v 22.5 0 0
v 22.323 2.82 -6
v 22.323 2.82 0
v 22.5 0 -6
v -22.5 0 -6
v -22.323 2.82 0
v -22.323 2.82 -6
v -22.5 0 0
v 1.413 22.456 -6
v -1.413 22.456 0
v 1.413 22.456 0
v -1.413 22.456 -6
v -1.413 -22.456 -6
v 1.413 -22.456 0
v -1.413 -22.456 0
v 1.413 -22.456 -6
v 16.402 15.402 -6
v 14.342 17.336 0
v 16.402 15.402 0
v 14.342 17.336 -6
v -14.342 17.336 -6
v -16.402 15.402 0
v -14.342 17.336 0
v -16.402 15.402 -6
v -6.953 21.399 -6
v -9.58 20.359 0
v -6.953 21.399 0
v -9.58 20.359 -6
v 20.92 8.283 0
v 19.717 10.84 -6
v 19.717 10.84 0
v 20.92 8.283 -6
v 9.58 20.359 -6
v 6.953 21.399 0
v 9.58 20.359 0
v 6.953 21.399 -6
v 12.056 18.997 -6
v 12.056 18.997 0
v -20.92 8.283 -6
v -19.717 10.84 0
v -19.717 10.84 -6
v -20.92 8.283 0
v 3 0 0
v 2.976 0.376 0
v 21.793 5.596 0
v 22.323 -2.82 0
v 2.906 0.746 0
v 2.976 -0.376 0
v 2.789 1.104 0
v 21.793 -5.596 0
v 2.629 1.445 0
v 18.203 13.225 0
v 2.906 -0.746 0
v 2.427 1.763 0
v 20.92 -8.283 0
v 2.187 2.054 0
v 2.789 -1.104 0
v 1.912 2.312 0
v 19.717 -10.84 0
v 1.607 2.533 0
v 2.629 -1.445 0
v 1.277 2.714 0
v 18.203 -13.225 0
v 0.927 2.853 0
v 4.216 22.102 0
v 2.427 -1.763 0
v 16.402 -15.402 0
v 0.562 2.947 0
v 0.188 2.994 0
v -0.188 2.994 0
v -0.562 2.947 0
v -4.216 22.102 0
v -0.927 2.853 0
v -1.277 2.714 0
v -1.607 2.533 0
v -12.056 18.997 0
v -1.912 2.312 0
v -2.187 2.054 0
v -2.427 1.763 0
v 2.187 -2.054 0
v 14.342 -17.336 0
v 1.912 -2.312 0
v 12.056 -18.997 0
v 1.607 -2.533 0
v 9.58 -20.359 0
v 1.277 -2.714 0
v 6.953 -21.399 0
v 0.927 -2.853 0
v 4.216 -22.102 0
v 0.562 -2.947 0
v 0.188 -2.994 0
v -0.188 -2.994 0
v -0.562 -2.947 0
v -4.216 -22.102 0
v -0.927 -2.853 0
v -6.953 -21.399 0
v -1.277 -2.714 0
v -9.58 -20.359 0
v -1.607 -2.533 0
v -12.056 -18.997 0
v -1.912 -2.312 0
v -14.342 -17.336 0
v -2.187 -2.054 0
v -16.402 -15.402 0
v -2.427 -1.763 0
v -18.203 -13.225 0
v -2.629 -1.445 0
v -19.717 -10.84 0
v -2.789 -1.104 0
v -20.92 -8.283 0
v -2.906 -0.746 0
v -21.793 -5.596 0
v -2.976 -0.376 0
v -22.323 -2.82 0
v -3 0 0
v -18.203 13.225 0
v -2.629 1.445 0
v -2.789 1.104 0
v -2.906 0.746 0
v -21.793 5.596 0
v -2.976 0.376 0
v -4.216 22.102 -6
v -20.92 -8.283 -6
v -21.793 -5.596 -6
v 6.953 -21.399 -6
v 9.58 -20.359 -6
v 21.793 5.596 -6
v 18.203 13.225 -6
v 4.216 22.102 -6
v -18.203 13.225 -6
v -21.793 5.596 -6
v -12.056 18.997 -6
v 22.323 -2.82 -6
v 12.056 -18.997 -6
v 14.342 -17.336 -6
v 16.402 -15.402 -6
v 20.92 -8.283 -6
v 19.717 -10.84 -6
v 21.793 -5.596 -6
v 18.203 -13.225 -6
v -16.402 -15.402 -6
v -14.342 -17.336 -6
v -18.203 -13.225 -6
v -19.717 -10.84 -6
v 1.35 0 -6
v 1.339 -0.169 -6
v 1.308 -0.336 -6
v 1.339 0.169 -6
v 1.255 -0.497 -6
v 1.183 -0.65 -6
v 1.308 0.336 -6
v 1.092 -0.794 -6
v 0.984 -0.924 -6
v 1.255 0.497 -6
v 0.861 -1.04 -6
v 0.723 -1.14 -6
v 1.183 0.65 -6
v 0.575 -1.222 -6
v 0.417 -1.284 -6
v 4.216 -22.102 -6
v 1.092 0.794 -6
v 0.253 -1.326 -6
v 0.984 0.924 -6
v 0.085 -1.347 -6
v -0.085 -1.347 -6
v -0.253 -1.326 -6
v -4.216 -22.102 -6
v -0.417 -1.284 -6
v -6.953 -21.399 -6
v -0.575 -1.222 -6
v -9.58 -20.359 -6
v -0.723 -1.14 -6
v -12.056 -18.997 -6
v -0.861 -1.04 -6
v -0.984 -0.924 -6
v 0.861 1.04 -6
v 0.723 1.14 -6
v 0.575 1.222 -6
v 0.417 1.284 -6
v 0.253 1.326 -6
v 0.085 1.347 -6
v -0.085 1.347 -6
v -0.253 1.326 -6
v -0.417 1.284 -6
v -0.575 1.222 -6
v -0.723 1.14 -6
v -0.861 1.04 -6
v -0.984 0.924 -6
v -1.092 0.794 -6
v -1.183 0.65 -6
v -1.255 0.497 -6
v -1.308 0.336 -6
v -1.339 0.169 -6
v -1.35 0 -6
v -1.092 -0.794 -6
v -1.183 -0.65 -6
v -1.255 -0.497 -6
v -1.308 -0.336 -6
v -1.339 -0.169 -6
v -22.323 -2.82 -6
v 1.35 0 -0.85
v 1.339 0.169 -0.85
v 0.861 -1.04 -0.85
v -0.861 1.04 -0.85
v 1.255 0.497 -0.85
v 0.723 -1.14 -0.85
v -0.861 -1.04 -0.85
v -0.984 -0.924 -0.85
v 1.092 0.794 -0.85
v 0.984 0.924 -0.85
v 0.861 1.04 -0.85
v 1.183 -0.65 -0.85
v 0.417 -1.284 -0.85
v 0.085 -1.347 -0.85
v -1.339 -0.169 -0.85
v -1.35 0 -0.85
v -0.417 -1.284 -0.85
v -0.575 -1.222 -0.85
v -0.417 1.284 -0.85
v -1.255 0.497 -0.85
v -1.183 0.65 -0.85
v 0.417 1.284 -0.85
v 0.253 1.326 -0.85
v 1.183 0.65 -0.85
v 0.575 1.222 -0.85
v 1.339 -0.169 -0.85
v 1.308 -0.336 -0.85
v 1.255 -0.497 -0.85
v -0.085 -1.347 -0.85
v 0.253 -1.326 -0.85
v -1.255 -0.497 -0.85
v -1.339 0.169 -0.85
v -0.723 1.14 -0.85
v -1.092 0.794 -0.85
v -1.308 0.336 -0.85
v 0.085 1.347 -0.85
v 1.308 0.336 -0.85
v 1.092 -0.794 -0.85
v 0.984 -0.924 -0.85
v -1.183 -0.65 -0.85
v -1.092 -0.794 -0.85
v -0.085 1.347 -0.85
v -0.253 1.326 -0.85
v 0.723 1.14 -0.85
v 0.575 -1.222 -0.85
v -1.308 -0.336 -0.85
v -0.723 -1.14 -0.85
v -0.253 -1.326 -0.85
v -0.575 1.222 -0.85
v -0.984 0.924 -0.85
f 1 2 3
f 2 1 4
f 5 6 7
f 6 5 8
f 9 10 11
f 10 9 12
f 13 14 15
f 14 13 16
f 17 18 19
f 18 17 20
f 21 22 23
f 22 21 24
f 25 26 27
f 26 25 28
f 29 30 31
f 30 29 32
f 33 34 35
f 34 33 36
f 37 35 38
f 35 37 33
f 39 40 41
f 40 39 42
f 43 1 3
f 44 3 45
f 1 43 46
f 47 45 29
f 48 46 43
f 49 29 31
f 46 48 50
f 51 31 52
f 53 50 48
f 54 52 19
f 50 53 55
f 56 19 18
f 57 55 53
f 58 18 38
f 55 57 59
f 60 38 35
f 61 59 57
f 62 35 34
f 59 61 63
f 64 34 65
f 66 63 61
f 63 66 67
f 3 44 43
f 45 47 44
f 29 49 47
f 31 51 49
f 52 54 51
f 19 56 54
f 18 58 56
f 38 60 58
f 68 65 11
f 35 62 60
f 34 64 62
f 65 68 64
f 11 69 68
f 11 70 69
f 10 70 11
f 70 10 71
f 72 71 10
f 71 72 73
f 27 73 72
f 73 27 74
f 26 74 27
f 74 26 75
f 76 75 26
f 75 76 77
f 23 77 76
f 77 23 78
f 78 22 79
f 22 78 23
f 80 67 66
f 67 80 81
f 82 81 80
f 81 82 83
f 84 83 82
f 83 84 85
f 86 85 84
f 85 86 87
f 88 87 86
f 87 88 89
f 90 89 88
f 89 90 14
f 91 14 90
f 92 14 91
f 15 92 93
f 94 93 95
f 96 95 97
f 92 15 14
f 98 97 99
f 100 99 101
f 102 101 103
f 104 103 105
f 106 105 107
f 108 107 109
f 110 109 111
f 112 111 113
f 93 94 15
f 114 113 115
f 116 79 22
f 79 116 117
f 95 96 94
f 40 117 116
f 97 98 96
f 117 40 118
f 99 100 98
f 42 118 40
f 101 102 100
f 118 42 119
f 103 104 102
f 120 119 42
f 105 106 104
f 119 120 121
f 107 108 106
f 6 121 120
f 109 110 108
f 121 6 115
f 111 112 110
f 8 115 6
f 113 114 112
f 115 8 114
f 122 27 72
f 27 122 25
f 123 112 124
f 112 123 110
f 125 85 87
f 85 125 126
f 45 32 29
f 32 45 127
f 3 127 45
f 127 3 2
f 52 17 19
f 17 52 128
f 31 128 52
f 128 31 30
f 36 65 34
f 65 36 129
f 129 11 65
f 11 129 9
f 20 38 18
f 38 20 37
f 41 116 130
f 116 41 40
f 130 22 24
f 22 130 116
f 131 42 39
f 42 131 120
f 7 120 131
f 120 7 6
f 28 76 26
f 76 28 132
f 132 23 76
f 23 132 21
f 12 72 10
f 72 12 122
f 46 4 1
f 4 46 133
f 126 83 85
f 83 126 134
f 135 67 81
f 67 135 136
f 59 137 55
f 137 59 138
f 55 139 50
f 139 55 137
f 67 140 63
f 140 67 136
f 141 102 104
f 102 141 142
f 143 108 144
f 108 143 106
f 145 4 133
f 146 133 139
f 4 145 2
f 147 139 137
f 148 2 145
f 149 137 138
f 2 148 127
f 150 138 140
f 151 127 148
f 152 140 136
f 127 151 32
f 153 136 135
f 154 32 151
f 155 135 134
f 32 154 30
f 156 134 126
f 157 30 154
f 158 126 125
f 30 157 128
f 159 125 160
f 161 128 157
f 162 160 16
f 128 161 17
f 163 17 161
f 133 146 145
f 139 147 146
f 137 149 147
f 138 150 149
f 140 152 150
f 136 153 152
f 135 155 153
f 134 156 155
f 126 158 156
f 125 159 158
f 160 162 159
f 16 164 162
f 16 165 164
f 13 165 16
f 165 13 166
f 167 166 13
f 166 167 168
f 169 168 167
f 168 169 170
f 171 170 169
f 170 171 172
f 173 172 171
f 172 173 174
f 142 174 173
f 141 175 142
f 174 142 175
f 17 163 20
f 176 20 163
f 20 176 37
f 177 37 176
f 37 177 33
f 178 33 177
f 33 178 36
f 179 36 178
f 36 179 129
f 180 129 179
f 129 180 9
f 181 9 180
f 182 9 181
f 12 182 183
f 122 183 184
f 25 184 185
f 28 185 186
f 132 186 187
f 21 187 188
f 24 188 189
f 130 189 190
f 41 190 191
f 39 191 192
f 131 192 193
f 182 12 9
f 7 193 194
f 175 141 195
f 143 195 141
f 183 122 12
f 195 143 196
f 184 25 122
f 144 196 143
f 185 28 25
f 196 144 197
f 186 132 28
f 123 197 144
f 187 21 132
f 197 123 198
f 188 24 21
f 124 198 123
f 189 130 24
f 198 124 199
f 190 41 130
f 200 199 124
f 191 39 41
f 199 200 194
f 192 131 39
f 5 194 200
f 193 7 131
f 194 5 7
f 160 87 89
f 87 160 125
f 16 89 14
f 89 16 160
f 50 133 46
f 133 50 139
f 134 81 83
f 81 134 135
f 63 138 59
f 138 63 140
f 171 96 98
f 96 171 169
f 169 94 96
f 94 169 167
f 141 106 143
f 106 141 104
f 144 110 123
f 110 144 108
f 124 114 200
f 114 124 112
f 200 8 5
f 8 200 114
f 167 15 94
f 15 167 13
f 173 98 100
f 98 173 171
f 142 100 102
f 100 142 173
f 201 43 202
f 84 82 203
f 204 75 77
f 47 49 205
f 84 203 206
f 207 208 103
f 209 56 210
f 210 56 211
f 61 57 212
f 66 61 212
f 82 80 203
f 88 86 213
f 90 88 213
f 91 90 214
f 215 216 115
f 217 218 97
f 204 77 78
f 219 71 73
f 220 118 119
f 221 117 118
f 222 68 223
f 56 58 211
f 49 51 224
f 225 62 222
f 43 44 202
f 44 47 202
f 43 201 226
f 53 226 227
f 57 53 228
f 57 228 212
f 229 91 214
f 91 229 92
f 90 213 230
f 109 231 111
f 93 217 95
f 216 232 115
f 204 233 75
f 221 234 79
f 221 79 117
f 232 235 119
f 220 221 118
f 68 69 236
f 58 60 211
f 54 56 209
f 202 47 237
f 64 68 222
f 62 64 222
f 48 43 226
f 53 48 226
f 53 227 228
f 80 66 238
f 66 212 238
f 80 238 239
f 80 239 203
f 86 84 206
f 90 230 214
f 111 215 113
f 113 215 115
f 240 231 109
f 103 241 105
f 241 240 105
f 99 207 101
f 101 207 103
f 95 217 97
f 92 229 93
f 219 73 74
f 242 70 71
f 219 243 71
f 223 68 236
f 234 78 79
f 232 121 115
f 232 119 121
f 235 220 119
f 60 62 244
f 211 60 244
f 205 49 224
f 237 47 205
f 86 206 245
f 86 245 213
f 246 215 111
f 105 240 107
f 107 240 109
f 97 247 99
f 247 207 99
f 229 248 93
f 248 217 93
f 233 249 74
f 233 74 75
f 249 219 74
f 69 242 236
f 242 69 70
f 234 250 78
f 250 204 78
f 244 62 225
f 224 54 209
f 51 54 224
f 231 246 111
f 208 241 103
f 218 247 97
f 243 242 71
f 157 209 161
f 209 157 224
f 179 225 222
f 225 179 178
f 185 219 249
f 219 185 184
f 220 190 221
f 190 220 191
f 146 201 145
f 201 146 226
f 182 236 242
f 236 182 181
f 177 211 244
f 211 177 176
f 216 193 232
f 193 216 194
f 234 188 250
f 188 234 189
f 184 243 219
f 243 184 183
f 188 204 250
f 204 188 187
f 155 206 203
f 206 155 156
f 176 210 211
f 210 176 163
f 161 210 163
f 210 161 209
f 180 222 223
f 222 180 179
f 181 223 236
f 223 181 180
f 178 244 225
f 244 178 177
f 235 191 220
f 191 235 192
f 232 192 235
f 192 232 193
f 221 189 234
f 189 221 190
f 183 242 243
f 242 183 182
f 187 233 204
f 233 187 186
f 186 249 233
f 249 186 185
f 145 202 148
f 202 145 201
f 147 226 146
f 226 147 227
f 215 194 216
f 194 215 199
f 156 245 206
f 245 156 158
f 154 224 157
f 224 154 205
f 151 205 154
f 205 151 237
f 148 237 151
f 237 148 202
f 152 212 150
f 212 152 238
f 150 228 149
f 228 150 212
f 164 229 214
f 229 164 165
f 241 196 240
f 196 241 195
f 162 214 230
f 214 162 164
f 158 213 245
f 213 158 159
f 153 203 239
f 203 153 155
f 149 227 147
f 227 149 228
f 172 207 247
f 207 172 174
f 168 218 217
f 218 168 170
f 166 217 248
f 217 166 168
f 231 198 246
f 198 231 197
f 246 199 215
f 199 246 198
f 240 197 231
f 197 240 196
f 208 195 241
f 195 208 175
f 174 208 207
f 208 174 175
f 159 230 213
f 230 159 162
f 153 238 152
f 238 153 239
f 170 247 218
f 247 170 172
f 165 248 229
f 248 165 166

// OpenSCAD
$fn = 50;


difference() {
	union() {
		translate(v = [0, 0, -6.0000000000]) {
			cylinder(h = 6, r = 22.5000000000);
		}
		translate(v = [0, 0, -6.0000000000]) {
			cylinder(h = 6, r = 2.8750000000);
		}
	}
	union() {
		translate(v = [0, 0, 0]) {
			rotate(a = [0, 0, 0]) {
				difference() {
					union() {
						translate(v = [0, 0, -6.0000000000]) {
							cylinder(h = 6, r = 1.0000000000);
						}
						translate(v = [0, 0, -0.8500000000]) {
							cylinder(h = 0.8500000000, r1 = 1.3500000000, r2 = 3.0000000000);
						}
						translate(v = [0, 0, -6.0000000000]) {
							cylinder(h = 6, r = 1.3500000000);
						}
						translate(v = [0, 0, -6.0000000000]) {
							cylinder(h = 6, r = 1.0000000000);
						}
					}
					union();
				}
			}
		}
	}
}
